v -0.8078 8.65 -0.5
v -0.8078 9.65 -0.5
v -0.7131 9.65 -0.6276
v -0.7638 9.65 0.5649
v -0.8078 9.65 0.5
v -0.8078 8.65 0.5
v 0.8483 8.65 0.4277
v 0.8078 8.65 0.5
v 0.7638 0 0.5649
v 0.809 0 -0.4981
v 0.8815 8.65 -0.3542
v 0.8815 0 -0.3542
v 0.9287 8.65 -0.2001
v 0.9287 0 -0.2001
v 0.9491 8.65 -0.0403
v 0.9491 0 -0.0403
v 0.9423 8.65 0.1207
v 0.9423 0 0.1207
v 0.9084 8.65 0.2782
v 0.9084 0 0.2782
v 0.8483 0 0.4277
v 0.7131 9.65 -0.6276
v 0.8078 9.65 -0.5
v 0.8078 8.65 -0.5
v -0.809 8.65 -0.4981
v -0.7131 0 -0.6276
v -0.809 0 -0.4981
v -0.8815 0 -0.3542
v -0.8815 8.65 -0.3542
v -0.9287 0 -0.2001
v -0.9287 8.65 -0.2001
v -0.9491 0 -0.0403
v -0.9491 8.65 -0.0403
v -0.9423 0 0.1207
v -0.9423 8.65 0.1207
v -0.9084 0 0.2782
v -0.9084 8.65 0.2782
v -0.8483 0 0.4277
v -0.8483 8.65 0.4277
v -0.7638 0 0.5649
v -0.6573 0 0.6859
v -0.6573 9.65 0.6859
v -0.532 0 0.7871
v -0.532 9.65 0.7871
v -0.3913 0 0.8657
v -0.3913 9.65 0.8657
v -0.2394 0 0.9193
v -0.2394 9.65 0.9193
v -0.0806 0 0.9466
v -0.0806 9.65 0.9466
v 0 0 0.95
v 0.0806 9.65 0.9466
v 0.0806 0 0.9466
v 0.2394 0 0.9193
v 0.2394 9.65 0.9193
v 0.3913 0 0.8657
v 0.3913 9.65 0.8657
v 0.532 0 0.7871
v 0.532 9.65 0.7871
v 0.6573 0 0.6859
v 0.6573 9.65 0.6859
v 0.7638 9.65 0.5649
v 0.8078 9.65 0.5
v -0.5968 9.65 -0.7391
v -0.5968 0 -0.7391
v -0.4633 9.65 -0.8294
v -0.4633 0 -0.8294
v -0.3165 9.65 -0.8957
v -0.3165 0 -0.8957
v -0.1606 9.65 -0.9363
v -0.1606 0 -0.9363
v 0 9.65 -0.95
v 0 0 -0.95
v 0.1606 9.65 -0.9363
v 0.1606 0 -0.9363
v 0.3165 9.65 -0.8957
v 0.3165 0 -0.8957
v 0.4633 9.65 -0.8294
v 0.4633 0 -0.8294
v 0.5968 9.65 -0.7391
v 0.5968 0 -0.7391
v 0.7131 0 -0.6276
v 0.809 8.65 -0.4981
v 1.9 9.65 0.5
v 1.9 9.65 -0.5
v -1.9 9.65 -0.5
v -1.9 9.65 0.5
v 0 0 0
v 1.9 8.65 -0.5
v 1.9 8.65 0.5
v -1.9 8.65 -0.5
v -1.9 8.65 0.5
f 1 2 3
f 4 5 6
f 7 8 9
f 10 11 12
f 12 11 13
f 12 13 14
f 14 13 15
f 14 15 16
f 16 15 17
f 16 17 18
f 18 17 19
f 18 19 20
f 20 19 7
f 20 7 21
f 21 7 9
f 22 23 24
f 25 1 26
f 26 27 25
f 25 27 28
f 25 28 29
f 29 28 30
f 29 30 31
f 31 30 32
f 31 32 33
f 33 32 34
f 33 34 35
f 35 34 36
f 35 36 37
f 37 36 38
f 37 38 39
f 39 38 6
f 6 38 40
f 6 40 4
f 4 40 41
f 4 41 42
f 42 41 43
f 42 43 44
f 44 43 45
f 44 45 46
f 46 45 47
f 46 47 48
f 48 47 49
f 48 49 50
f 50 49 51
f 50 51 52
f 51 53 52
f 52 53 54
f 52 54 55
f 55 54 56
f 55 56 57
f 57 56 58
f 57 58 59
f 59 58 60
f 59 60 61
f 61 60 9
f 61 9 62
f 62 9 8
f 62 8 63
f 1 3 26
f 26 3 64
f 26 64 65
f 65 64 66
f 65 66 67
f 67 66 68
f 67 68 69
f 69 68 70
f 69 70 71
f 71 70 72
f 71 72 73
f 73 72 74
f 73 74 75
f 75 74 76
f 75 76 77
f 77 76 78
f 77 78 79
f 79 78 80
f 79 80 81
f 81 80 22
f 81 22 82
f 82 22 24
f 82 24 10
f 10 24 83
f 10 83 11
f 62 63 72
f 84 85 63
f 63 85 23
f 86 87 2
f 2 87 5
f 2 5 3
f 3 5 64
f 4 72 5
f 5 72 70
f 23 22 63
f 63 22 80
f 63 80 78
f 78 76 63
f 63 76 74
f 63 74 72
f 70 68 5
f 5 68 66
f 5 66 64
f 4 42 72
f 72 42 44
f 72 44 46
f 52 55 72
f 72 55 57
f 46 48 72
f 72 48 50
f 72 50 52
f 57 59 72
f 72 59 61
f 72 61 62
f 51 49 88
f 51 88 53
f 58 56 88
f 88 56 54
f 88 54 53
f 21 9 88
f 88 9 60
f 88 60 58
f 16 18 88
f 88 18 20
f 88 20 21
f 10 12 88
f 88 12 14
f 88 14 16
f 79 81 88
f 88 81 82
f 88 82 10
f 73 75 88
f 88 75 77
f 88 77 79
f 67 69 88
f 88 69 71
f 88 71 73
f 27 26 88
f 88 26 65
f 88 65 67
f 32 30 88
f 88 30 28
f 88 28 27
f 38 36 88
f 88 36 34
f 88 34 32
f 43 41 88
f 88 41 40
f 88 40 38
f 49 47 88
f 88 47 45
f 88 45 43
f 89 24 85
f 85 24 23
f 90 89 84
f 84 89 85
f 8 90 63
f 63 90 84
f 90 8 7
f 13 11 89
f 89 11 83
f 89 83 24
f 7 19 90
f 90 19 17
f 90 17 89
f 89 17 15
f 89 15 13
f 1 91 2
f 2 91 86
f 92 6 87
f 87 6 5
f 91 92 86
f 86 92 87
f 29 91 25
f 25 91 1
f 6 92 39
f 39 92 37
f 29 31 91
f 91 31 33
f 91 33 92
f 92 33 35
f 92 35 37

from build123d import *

# Parameters (mm, degrees)
SKETCH1_R  = 0.95
BODY_DEPTH = 9.65
LOCK_DEPTH = 1


with BuildPart() as part:
    # Sketch1 → Body (new body)
    with BuildSketch(Plane(origin=(0, 0, 0), x_dir=(1, 0, 0), z_dir=(0, 1, 0))):
        Circle(SKETCH1_R)
    extrude(amount=BODY_DEPTH)

    # Sketch2 → Lock (add)
    with BuildSketch(Plane(origin=(0, 9.65, 0), x_dir=(1, 0, 0), z_dir=(0, 1, 0))):
        with BuildLine():
            ThreePointArc((-0.807774721, -0.5), (-0.95, 0), (-0.807774721, 0.5))
            Line((-0.807774721, 0.5), (-1.9, 0.5))
            Line((-1.9, 0.5), (-1.9, -0.5))
            Line((-1.9, -0.5), (-0.807774721, -0.5))
        make_face()
        with BuildLine():
            Line((1.9, 0.5), (0.807774721, 0.5))
            ThreePointArc((0.807774721, 0.5), (0.91375215, 0.259917309), (0.95, 0))
            ThreePointArc((0.95, 0), (0.91375215, -0.259917309), (0.807774721, -0.5))
            Line((0.807774721, -0.5), (1.9, -0.5))
            Line((1.9, -0.5), (1.9, 0.5))
        make_face()
    extrude(amount=-LOCK_DEPTH)


solid = part.part
